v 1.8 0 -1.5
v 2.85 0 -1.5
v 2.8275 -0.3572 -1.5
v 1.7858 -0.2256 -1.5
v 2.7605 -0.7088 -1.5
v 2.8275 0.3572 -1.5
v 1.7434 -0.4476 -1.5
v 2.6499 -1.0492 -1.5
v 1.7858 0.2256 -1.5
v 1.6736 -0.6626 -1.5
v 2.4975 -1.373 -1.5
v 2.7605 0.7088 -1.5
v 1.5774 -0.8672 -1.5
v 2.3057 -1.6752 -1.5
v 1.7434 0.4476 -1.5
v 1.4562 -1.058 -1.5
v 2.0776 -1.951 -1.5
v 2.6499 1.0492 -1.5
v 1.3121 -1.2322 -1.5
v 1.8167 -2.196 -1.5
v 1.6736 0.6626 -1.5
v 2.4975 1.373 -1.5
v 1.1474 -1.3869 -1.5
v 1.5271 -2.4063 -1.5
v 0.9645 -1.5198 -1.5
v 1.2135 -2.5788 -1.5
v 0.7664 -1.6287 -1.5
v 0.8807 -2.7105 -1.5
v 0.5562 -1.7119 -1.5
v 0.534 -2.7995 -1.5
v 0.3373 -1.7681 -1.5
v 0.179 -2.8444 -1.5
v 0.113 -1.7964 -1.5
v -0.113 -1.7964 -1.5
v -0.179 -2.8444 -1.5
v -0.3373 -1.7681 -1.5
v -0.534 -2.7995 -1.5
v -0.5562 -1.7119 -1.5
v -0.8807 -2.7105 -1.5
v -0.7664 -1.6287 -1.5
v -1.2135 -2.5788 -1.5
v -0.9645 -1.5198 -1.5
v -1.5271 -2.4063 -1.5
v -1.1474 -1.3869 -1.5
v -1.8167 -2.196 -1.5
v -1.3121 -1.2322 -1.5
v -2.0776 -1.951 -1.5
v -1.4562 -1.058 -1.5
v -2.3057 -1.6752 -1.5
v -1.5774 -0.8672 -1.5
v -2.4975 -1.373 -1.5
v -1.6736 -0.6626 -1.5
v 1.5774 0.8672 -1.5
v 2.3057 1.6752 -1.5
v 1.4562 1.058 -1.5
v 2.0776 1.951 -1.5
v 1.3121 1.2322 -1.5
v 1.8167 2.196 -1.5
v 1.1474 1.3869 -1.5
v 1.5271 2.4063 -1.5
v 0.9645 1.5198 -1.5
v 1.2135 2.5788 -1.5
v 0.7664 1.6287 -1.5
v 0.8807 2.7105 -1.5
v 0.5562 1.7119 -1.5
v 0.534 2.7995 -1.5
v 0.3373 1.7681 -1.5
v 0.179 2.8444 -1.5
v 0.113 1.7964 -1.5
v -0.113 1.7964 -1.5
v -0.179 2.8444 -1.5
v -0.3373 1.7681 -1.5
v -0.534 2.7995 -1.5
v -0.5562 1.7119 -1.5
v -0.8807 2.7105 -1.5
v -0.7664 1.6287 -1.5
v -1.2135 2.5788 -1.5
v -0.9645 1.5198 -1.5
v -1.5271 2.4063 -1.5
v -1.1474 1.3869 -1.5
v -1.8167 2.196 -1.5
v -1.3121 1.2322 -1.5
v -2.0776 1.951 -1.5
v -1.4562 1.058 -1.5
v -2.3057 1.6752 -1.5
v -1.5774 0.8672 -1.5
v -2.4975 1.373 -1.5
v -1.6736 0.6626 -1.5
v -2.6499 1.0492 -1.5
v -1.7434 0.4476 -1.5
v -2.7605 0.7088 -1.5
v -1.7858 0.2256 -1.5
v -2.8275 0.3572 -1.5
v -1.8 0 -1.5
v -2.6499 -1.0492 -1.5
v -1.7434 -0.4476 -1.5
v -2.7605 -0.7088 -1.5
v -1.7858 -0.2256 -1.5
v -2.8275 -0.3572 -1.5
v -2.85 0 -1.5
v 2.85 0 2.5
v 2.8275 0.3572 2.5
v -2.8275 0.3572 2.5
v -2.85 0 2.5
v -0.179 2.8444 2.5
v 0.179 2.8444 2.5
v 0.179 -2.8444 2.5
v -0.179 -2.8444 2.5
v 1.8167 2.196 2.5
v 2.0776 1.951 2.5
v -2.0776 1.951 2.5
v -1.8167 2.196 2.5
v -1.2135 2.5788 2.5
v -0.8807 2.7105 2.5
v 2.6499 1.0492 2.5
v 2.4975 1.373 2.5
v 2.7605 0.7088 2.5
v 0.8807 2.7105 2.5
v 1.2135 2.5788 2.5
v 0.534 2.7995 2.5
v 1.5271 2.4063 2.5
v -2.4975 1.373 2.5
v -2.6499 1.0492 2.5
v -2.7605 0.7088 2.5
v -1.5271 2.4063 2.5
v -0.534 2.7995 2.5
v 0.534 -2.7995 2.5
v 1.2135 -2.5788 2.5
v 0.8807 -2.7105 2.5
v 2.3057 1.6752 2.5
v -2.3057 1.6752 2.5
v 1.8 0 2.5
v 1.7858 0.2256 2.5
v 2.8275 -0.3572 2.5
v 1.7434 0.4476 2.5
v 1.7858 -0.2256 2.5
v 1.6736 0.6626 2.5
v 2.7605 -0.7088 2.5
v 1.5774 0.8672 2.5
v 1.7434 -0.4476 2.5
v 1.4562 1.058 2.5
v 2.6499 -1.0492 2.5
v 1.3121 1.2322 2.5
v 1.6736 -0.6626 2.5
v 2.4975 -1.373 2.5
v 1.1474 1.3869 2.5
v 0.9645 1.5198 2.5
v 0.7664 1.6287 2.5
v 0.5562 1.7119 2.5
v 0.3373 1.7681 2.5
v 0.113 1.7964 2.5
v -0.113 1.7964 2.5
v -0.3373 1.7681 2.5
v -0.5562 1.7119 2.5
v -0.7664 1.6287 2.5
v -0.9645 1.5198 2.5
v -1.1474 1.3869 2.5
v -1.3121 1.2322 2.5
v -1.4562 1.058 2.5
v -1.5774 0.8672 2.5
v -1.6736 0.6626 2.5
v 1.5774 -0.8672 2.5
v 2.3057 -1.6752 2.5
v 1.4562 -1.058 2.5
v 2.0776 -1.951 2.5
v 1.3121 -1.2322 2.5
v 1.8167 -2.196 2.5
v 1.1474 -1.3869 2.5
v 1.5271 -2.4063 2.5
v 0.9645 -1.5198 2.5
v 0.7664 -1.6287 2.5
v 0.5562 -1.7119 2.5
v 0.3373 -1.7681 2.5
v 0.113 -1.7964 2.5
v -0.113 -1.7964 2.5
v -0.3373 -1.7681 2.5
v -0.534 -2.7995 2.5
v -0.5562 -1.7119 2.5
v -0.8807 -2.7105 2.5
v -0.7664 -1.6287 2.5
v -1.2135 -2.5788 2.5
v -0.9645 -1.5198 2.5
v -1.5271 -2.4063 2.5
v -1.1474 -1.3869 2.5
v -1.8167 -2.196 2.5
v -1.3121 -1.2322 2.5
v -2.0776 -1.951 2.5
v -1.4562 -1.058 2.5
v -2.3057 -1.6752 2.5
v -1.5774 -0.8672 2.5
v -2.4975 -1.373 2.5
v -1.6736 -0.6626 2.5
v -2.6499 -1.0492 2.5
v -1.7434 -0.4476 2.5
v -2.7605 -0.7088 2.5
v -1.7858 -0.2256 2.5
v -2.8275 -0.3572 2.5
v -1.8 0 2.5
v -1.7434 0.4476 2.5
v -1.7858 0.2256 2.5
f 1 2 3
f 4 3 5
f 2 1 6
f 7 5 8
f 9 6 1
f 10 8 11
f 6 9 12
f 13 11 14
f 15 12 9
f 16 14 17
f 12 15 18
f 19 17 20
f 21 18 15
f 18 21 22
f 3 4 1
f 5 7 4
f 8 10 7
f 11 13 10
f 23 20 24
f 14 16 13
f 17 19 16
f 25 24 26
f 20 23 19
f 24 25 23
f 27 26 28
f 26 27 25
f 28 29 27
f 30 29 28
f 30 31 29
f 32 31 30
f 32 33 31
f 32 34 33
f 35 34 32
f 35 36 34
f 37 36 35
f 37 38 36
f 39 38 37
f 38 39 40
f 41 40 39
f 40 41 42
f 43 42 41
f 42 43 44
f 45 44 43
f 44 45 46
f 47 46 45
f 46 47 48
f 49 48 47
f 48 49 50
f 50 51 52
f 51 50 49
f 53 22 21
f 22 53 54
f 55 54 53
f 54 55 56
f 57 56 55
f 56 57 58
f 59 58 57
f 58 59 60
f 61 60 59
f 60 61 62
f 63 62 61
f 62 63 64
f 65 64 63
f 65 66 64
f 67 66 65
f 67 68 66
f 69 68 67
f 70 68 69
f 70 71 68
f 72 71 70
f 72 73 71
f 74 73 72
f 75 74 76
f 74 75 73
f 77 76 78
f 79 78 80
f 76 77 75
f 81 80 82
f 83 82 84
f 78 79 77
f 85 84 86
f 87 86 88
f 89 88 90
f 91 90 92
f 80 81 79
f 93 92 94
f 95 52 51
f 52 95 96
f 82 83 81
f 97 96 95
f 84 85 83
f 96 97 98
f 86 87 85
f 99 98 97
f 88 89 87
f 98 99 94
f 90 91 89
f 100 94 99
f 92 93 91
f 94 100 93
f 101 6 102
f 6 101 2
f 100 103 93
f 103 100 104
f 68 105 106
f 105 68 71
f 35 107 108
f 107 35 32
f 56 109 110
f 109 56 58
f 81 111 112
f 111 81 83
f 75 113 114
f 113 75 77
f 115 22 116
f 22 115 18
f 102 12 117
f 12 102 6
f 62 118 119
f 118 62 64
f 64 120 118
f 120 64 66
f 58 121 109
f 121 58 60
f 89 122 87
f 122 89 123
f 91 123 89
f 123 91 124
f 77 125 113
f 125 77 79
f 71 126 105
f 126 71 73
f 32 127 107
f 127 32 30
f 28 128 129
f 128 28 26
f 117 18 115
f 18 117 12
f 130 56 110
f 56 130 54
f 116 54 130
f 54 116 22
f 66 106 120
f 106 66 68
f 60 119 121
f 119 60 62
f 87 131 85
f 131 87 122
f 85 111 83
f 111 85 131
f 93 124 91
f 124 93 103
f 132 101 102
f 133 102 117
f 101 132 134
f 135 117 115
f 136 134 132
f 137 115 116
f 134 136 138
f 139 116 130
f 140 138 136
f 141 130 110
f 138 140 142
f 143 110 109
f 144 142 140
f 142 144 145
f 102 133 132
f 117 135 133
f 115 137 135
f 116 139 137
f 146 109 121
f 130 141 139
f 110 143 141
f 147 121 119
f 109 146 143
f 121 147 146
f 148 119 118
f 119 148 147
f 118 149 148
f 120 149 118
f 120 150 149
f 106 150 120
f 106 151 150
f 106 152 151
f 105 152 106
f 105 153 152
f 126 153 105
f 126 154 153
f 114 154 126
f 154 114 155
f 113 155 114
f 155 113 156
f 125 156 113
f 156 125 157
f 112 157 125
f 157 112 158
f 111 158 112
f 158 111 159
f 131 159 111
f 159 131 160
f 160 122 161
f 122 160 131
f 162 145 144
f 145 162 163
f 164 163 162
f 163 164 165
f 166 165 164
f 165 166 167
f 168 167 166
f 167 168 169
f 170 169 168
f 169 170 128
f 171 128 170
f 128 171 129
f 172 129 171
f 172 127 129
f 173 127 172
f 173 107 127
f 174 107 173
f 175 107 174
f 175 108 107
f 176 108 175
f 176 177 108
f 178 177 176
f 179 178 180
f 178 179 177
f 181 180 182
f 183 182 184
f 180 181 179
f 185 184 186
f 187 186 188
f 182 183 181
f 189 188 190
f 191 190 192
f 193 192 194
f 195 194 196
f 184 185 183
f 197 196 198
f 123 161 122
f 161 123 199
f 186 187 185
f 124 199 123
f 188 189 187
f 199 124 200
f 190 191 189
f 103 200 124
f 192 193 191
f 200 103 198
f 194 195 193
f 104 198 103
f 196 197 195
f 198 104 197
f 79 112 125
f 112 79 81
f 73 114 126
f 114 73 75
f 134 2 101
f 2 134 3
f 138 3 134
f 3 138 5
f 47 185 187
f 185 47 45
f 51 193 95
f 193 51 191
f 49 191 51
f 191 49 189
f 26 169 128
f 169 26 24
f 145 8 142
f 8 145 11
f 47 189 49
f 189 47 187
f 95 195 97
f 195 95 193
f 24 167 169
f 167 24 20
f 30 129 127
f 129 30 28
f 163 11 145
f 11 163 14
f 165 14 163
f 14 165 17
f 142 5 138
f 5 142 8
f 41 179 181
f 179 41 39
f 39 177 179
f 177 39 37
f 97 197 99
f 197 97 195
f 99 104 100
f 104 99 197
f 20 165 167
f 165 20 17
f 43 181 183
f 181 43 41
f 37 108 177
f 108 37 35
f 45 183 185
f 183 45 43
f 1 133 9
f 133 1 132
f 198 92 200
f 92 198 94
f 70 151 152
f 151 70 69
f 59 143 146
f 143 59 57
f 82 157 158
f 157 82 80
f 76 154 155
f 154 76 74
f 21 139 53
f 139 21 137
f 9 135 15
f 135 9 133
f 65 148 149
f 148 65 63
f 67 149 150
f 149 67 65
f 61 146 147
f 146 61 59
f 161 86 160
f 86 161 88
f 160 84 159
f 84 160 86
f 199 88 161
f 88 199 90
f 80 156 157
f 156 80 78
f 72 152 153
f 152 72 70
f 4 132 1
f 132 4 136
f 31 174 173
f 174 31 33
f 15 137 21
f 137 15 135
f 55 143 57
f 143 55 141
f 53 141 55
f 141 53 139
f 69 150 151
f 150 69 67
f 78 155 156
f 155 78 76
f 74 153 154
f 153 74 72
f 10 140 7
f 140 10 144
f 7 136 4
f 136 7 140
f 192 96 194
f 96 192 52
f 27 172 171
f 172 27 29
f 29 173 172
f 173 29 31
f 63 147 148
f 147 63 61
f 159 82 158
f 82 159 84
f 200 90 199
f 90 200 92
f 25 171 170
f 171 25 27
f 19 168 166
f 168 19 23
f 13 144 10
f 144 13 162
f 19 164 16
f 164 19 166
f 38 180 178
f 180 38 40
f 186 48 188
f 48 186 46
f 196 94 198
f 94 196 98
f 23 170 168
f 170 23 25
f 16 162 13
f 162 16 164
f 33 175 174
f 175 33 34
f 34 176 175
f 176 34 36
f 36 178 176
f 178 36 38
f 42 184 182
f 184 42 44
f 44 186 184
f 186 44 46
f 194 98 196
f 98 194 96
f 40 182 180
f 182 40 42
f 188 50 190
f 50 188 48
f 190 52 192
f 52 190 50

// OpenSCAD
$fn = 50;


difference() {
	union() {
		translate(v = [0, 0, -1.5000000000]) {
			rotate(a = [0, 0, 0]) {
				cylinder(h = 3, r = 1.0000000000);
			}
		}
		translate(v = [0, 0, -1.5000000000]) {
			rotate(a = [0, 0, 0]) {
				cylinder(h = 4, r = 2.8500000000);
			}
		}
	}
	union() {
		translate(v = [0, 0, -125.0000000000]) {
			rotate(a = [0, 0, 0]) {
				cylinder(h = 250, r = 1.8000000000);
			}
		}
	}
}
